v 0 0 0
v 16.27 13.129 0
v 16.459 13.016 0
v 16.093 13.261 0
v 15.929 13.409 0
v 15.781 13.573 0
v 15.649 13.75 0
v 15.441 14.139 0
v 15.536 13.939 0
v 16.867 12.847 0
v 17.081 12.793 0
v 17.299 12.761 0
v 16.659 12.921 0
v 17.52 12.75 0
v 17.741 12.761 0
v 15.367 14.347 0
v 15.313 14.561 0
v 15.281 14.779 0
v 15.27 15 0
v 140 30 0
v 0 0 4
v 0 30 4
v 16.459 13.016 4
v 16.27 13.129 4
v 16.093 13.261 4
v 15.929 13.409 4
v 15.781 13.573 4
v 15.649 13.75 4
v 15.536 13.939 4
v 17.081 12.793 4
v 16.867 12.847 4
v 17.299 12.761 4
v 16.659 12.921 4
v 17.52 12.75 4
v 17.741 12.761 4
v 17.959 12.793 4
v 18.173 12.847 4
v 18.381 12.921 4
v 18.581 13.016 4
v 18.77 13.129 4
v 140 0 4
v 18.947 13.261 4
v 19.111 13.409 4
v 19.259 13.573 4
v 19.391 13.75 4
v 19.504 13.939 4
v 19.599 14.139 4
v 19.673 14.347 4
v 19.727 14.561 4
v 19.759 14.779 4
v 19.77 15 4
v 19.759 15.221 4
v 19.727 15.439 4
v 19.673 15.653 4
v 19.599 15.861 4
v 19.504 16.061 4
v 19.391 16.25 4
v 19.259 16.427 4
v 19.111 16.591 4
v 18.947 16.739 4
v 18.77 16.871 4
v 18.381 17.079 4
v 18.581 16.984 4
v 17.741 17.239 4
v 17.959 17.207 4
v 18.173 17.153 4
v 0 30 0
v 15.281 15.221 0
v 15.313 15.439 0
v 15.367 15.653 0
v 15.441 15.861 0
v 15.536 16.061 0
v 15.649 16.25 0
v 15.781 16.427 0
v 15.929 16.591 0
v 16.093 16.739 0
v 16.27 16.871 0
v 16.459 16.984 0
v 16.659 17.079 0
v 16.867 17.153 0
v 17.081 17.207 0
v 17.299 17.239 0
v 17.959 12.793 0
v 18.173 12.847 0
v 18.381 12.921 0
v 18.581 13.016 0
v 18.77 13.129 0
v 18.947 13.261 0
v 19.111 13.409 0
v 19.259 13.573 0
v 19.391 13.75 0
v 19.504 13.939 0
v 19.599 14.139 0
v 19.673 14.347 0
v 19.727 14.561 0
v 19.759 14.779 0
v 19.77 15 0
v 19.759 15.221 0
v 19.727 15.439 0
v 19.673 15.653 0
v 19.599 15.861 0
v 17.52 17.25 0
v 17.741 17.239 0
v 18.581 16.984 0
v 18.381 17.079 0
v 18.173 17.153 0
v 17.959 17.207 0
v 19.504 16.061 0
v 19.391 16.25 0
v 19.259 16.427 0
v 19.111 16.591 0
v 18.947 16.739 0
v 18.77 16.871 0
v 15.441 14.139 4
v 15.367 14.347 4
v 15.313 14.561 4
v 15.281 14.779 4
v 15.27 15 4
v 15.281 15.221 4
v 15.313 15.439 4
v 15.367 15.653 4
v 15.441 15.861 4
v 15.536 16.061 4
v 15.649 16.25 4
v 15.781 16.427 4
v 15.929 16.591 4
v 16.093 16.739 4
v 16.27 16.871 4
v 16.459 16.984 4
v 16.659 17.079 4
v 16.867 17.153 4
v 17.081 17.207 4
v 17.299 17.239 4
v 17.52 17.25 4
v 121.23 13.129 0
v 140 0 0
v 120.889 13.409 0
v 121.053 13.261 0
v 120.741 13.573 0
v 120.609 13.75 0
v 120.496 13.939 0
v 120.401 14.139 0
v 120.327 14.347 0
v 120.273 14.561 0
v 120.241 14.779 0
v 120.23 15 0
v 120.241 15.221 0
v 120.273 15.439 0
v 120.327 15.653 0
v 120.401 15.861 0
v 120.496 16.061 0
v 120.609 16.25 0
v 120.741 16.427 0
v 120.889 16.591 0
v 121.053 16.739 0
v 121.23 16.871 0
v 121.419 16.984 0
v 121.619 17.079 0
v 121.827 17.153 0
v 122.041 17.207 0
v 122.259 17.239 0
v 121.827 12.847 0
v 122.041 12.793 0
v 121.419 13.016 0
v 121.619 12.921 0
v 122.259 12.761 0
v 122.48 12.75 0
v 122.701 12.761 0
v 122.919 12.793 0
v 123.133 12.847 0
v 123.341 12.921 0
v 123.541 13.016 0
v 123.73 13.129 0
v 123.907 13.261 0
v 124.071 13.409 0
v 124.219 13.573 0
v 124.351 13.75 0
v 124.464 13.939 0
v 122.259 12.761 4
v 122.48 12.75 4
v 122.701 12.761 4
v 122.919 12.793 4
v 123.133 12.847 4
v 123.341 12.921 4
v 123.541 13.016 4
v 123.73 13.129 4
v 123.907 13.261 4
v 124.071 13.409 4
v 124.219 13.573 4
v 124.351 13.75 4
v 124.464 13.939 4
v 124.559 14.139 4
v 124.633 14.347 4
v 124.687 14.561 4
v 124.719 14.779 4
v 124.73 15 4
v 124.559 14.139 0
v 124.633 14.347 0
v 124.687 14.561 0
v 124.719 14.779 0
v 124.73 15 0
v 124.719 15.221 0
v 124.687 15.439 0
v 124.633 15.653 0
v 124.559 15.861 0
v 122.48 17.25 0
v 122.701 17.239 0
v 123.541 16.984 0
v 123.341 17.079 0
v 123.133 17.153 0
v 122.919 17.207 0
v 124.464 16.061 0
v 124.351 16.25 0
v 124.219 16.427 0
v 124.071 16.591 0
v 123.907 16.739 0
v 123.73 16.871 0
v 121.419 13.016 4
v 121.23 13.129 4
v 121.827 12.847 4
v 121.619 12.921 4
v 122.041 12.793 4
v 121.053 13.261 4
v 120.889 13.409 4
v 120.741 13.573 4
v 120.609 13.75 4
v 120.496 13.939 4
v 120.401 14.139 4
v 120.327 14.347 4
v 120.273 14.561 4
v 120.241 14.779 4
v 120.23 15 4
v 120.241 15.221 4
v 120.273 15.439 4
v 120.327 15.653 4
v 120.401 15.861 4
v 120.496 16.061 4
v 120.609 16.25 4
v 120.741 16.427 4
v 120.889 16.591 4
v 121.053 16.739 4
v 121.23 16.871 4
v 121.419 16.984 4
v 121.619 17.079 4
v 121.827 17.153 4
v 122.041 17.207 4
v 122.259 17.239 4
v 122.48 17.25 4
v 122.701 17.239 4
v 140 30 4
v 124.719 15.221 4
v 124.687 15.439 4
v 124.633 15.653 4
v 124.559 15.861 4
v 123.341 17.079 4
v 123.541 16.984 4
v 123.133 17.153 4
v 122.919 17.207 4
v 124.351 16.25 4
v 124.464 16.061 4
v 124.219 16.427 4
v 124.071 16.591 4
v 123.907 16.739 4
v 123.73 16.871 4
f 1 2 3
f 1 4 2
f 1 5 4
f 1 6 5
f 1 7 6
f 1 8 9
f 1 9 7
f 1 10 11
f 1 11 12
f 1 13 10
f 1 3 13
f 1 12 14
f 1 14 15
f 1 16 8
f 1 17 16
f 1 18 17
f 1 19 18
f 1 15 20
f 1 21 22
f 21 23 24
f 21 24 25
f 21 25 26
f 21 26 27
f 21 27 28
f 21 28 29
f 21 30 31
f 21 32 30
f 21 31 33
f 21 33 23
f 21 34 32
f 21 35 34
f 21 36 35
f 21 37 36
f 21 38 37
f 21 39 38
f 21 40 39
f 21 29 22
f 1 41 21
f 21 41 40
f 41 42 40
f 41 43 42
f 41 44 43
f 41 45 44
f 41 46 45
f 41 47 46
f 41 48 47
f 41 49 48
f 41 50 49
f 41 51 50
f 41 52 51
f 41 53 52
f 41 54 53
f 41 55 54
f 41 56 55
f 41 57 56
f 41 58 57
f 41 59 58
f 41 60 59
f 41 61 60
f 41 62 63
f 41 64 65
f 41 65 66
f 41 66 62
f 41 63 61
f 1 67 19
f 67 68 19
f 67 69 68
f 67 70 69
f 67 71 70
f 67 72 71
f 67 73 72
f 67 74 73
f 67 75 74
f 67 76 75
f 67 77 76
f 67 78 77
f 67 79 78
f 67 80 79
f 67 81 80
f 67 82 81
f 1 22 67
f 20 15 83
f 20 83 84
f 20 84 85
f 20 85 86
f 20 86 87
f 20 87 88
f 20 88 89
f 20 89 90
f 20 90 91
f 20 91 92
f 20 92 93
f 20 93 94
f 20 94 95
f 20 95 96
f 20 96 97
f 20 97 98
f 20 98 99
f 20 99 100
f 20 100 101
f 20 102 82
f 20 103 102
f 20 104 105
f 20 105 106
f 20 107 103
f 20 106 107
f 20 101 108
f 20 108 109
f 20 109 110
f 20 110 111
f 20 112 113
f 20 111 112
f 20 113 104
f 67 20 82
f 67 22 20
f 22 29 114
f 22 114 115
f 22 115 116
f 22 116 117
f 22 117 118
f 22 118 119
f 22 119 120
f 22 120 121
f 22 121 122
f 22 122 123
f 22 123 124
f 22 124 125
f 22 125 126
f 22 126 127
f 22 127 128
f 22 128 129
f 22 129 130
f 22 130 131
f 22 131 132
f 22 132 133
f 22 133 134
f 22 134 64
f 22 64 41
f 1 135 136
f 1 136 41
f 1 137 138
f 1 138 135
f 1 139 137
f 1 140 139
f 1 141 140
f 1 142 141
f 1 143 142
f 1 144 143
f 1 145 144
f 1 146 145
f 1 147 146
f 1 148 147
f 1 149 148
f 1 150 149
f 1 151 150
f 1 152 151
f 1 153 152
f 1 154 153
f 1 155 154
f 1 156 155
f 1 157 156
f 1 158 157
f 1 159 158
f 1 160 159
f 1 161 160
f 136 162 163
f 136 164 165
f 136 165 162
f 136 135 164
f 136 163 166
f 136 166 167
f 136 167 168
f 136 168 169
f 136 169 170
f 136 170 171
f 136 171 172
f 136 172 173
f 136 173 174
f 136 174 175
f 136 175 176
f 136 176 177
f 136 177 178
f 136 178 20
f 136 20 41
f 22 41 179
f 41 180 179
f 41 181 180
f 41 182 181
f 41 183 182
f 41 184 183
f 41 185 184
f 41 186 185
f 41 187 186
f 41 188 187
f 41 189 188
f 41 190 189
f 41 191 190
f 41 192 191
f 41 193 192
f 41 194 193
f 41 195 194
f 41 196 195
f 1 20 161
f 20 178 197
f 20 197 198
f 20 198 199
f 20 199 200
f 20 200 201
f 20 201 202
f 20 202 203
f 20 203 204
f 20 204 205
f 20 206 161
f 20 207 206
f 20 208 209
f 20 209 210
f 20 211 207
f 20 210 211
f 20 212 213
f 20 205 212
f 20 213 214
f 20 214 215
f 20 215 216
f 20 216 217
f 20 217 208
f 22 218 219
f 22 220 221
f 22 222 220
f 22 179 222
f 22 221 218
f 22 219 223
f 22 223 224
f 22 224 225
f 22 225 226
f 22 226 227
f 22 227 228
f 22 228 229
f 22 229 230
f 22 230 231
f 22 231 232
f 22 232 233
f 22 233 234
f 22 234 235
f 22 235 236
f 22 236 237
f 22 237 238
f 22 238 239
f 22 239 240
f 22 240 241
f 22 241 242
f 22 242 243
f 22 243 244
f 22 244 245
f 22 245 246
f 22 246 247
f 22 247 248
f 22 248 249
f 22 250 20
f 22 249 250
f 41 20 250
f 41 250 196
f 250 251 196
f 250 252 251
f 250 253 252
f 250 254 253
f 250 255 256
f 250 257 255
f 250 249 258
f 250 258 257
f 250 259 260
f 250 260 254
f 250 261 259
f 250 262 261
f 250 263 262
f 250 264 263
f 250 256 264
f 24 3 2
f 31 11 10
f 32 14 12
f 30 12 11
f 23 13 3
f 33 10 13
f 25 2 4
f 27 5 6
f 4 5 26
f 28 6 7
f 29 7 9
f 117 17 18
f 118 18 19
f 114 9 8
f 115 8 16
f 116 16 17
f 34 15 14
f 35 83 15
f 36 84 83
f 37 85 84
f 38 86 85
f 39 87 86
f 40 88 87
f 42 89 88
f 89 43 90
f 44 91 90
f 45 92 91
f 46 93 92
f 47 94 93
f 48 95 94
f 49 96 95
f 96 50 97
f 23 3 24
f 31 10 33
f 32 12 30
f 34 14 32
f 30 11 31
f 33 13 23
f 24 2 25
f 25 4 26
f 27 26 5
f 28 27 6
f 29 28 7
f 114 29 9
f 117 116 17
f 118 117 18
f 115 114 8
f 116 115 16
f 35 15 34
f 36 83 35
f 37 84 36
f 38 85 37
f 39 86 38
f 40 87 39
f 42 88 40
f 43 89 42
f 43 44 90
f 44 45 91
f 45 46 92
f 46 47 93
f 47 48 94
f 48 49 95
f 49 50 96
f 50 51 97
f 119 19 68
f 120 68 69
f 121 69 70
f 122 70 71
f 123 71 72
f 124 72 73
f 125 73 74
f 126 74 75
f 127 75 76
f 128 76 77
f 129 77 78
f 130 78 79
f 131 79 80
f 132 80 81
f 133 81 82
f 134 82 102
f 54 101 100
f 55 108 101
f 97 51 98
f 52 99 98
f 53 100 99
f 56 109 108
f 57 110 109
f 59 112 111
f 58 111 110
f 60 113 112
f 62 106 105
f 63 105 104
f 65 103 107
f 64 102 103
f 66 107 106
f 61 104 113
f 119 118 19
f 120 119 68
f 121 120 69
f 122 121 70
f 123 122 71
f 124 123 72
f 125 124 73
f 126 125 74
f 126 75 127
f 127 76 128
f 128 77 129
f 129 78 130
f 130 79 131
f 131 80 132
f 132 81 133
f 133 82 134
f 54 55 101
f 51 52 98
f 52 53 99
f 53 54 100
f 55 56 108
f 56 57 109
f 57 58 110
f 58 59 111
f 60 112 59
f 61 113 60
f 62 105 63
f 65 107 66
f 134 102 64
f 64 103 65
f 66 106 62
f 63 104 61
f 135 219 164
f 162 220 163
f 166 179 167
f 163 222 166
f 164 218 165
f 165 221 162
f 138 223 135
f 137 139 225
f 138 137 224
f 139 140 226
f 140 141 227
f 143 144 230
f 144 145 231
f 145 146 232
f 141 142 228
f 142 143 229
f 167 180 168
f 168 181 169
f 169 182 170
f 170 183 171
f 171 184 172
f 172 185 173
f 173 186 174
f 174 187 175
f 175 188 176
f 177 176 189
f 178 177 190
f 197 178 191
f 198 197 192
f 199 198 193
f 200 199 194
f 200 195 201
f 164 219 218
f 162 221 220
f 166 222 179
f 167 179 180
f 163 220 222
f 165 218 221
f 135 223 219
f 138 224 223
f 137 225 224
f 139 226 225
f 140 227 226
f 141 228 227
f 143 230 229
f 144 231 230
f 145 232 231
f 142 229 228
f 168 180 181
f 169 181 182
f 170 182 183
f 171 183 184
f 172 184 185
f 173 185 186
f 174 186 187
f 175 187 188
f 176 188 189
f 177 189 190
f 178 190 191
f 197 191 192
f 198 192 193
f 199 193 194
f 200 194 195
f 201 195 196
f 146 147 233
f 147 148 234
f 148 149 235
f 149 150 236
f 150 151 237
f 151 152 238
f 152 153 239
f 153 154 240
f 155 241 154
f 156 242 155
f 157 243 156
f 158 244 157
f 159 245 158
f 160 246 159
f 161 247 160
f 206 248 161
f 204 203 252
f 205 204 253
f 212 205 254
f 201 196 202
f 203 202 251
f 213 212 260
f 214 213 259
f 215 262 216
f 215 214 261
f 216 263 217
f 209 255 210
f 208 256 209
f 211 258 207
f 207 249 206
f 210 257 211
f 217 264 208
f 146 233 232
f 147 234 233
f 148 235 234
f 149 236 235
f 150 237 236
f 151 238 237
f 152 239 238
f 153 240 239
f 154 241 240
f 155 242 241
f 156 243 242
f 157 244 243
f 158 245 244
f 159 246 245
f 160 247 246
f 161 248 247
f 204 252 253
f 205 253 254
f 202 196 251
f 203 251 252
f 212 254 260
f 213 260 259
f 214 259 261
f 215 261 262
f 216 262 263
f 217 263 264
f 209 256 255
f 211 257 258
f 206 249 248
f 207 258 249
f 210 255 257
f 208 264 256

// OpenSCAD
// ==========================================
// K2 SE TOOL HOLDER - MOUNTING TEST PLATE
// ==========================================

hole_spacing = 104.96; 
screw_diameter = 4.5;  

width = 140;           
backplate_height = 30; 
thickness = 4.0;       

$fn = 64;
epsilon = 0.01;

difference() {
    // The solid backplate lying flat on the build plate
    cube([width, backplate_height, thickness]);
    
    // Left Mounting Hole
    translate([(width/2) - (hole_spacing/2), backplate_height/2, -epsilon])
        cylinder(h=thickness + 2, d=screw_diameter);
        
    // Right Mounting Hole
    translate([(width/2) + (hole_spacing/2), backplate_height/2, -epsilon])
        cylinder(h=thickness + 2, d=screw_diameter);
}
